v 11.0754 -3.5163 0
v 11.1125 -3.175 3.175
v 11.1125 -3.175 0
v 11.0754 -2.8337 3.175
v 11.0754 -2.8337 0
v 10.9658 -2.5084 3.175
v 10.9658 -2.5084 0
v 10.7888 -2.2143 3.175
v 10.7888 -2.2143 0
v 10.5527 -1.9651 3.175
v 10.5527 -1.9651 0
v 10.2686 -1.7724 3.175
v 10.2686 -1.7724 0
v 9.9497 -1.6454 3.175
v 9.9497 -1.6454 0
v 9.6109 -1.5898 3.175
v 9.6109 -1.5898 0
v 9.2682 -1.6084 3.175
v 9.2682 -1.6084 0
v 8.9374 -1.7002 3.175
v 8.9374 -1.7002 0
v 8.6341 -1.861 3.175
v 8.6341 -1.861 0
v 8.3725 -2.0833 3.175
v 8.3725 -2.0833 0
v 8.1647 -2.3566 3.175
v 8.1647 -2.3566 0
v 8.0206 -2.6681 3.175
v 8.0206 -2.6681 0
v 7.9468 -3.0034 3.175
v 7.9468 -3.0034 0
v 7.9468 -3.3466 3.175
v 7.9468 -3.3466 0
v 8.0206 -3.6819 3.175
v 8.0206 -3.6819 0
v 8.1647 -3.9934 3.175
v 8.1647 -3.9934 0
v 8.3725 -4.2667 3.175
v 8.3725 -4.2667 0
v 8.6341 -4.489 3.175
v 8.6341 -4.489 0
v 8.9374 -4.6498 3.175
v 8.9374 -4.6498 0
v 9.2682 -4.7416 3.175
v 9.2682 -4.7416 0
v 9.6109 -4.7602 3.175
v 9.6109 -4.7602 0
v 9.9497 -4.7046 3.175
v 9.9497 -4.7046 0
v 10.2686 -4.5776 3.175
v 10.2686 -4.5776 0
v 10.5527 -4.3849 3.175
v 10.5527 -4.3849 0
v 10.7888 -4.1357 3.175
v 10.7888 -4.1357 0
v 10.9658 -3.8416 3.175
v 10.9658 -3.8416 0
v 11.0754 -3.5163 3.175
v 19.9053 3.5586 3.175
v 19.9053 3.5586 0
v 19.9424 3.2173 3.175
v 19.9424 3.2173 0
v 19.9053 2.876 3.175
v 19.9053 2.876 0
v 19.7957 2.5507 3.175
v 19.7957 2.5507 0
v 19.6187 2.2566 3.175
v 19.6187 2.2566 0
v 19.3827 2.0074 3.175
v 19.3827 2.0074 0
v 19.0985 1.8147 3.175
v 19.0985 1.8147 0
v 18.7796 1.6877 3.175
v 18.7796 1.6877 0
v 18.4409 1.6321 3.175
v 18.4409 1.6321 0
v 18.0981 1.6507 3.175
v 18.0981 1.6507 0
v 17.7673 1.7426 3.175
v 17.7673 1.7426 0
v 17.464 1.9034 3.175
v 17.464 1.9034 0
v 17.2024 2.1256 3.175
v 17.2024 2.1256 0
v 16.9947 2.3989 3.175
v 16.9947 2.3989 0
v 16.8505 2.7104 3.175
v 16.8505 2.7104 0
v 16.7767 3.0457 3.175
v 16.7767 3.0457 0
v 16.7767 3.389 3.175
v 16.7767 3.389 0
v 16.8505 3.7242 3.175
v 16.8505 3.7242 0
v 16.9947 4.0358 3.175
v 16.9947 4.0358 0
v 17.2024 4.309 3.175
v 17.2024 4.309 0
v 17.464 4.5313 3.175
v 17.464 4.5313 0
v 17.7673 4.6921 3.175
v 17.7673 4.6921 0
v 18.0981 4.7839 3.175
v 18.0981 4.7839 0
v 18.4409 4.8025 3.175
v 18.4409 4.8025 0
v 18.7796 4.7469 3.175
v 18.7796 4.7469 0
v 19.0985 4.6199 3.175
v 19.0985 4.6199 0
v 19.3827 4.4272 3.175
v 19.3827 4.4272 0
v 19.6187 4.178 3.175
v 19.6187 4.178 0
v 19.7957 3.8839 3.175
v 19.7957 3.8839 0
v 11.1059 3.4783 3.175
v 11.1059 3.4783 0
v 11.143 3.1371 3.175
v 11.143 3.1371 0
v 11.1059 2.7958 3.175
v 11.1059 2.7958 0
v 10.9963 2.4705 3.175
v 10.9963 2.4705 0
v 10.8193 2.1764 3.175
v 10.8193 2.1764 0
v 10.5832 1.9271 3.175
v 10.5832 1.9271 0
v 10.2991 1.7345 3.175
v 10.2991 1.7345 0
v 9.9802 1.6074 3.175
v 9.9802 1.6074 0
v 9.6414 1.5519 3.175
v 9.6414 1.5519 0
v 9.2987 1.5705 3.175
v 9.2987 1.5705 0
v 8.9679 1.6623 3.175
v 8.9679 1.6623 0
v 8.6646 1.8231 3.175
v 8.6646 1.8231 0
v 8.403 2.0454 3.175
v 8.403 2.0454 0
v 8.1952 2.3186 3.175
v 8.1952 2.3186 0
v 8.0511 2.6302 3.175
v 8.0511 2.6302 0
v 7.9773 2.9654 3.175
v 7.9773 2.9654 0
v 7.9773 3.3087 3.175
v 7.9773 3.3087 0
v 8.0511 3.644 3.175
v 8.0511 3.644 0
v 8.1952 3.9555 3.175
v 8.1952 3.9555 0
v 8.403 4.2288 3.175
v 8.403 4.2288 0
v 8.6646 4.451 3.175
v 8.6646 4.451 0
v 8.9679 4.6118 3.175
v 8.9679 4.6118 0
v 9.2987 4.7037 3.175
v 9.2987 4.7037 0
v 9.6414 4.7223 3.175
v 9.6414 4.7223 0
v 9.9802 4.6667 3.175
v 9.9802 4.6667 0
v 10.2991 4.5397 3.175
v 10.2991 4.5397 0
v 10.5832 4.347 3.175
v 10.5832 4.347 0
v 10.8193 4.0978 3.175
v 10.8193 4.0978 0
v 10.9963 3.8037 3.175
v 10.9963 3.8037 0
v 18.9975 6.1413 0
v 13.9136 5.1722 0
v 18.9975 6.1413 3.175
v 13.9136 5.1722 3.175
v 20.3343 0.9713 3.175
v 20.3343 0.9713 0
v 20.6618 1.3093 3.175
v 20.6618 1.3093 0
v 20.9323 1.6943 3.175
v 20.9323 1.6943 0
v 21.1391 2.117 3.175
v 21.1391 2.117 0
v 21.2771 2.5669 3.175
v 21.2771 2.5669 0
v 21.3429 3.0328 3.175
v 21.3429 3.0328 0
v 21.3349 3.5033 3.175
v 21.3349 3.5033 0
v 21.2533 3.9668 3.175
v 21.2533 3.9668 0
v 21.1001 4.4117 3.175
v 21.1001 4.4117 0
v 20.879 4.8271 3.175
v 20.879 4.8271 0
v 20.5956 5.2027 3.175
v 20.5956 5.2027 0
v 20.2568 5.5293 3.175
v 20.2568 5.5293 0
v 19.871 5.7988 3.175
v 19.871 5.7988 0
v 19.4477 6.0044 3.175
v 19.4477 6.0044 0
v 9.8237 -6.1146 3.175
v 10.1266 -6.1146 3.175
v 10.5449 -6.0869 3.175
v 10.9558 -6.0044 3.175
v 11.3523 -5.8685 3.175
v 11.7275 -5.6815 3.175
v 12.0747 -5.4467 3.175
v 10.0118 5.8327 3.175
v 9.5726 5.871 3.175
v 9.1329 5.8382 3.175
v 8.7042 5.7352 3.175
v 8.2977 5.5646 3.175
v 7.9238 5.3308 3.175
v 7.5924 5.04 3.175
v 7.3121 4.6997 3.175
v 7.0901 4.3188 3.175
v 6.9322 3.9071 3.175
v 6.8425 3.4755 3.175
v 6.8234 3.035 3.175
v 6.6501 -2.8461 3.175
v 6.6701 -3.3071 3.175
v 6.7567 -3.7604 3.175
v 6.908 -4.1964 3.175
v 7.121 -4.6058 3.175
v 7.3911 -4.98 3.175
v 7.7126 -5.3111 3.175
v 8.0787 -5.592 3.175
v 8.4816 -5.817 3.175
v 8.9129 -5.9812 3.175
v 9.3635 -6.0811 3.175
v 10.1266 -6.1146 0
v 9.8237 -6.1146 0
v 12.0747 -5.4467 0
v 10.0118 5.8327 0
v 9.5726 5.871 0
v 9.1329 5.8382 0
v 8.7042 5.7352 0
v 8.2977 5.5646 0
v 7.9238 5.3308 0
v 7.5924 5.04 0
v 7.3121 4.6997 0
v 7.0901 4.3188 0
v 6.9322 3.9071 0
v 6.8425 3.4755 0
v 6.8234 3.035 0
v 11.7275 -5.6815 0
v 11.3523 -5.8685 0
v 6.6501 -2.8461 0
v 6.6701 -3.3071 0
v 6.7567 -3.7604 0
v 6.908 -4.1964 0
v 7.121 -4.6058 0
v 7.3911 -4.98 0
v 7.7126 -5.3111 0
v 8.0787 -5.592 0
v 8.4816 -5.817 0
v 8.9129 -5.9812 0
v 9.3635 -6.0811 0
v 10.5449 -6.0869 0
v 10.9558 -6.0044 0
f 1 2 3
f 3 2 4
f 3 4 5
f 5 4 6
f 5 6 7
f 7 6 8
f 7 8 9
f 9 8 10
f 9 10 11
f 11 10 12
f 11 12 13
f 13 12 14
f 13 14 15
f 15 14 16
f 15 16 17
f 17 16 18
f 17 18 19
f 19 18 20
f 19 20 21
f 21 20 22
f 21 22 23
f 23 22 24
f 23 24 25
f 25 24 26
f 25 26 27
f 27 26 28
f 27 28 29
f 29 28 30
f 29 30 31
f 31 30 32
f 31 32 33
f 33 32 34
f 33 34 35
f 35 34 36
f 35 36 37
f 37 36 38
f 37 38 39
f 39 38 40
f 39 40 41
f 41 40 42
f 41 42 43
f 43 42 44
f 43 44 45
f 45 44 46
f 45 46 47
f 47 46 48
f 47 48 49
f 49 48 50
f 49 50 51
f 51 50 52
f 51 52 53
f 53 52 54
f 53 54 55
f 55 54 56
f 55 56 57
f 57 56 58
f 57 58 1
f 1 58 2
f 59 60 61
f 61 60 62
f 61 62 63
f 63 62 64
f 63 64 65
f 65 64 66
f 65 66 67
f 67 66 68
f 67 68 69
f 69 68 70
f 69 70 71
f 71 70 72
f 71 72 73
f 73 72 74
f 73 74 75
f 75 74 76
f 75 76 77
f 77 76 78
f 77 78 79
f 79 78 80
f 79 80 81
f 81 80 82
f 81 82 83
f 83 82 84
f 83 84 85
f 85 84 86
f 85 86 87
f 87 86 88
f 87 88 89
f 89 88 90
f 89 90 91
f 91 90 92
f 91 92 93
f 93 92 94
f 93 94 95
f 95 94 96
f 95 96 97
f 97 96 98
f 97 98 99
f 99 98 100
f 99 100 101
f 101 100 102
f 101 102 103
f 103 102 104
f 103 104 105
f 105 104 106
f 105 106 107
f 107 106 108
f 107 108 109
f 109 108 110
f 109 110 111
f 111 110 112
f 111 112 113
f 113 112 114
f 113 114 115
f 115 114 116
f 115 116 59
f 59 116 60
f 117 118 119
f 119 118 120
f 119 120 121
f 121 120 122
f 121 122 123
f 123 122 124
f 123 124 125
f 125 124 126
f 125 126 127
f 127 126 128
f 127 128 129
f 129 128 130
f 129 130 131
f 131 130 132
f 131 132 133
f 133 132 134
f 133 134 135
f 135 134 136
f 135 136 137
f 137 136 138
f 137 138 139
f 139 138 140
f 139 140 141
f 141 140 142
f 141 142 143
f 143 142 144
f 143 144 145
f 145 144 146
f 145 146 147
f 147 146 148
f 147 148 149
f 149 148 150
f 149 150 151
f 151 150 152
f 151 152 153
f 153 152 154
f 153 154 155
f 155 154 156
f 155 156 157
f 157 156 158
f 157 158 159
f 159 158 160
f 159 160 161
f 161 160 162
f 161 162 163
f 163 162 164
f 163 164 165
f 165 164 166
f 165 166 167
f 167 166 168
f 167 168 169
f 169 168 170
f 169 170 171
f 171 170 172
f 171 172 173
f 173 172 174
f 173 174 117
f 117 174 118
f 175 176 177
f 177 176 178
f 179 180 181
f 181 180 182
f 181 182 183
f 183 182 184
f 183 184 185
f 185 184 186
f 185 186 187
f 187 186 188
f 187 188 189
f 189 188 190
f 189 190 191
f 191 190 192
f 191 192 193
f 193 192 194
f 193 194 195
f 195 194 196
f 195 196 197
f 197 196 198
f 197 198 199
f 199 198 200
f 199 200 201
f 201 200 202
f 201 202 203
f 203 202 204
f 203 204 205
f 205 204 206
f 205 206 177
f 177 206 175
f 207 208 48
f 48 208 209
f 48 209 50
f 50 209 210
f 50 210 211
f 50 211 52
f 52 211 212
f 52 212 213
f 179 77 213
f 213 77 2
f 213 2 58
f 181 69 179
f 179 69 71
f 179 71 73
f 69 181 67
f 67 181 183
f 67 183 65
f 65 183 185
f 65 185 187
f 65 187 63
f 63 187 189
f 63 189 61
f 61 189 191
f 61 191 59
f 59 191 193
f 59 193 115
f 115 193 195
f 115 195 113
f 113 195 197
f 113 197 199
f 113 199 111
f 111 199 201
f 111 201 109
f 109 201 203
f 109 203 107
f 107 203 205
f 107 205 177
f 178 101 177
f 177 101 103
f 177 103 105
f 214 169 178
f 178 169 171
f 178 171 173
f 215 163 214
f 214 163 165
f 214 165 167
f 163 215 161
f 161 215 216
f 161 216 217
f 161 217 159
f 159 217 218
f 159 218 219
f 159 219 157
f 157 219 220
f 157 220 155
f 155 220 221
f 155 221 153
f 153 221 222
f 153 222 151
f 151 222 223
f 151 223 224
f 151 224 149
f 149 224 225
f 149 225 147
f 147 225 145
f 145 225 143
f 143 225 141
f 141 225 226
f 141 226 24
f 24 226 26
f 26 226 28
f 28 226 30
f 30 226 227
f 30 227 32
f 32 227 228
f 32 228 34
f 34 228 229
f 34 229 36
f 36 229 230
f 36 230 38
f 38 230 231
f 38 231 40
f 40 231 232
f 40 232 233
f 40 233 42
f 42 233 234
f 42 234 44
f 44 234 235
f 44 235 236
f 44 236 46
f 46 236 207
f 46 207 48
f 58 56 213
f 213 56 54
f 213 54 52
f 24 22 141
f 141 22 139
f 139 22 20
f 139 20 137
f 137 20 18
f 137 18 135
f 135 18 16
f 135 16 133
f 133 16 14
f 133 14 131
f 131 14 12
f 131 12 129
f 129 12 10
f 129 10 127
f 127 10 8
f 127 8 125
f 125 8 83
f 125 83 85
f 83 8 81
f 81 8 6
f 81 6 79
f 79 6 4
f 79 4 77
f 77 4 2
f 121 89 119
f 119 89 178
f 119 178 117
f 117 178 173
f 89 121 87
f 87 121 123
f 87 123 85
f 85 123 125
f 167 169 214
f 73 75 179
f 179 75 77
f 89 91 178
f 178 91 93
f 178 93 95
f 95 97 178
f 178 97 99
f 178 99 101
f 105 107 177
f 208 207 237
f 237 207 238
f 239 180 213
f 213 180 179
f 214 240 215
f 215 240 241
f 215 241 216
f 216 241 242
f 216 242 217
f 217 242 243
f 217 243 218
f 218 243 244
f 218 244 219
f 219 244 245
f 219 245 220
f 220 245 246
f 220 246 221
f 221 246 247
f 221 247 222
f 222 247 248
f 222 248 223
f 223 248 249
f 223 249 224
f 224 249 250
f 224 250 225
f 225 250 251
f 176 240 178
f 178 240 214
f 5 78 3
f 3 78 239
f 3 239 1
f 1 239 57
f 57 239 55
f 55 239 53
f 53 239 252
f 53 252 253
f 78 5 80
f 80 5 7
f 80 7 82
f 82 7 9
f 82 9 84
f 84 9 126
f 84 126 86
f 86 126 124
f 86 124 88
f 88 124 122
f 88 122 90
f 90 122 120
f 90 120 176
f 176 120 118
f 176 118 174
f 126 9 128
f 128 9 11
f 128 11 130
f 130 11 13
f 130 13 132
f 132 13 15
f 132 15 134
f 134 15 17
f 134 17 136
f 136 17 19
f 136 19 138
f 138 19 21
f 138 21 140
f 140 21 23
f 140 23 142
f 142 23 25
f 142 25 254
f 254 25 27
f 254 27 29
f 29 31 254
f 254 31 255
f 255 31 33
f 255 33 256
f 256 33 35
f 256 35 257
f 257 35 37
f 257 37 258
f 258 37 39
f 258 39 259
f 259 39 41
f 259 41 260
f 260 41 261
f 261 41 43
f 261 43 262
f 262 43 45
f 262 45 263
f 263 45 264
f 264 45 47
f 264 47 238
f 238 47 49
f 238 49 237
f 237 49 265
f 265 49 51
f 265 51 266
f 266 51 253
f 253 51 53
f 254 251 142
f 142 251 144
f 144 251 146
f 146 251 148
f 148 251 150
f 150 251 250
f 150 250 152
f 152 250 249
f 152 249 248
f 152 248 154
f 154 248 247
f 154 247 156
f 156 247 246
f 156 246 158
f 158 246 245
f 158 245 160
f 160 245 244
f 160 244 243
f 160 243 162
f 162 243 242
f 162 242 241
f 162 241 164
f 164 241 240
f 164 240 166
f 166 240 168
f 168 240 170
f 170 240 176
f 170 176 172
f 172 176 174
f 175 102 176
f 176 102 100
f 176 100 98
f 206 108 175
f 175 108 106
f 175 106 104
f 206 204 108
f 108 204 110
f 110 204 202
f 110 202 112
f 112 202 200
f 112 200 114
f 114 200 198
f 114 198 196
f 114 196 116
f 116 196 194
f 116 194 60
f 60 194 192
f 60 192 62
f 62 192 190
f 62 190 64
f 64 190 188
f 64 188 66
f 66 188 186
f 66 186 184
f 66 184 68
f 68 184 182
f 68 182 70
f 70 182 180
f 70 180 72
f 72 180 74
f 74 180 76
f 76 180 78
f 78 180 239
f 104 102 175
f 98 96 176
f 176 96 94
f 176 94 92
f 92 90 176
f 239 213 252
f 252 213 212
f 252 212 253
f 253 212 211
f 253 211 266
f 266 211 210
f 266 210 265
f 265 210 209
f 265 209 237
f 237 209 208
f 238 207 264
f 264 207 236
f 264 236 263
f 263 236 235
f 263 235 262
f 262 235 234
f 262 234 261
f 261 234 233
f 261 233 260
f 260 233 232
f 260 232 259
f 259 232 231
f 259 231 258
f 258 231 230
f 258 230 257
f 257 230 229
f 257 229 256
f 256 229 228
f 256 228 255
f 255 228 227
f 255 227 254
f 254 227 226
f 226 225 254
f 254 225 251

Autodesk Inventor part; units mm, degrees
ref_plane "YZ Plane" through (0, 0, 0) normal (1, 0, 0) x (0, 1, 0)
ref_plane "XZ Plane" through (0, 0, 0) normal (0, 1, 0) x (-1, 0, 0)
ref_plane "XY Plane" through (0, 0, 0) normal (0, 0, 1) x (1, 0, 0)
sketch "Sketch1" plane through (0, 0, 0) normal (0, 0, 1) x (1, 0, 0)
  line L0 (6.8234, 3.035) -> (6.5538, -6.1146)
  line L1 (6.5538, -6.1146) -> (11.2152, -6.1146)
  line L2 (11.2152, -6.1146) -> (20.3343, 0.9713)
  circle A0 centre (18.3549, 3.2173) radius 2.9937
  circle A1 centre (18.3549, 3.2173) radius 1.5875
  line L3 (18.9975, 6.1413) -> (13.9136, 5.1722)
  circle A2 centre (9.5555, 3.1371) radius 2.734
  circle A3 centre (9.5555, 3.1371) radius 1.5875
  line L4 (13.9136, 5.1722) -> (10.0118, 5.8327)
  point P0 (0, 0)
  dimension "d0" = 3.175
  dimension "d1" = 3.175
extrude "Extrusion1" add sketch "Sketch1" along normal blind 3.175 contours A2 L4 L3 A0 L2 L1 L0 | A2 | A0 L3 L2
sketch "Sketch2" plane through (0, 0, 3.175) normal (0, 0, 1) x (1, 0, 0)
  circle A0 centre (9.525, -3.175) radius 1.5875
  point P0 (0, 0)
extrude "Extrusion2" cut sketch "Sketch2" against normal blind 3.175
fillet "Fillet1" radius 3.175 2 edges at (6.5538, -6.1146, 1.5875) (11.2152, -6.1146, 1.5875)
properties part number "UpperLever"
